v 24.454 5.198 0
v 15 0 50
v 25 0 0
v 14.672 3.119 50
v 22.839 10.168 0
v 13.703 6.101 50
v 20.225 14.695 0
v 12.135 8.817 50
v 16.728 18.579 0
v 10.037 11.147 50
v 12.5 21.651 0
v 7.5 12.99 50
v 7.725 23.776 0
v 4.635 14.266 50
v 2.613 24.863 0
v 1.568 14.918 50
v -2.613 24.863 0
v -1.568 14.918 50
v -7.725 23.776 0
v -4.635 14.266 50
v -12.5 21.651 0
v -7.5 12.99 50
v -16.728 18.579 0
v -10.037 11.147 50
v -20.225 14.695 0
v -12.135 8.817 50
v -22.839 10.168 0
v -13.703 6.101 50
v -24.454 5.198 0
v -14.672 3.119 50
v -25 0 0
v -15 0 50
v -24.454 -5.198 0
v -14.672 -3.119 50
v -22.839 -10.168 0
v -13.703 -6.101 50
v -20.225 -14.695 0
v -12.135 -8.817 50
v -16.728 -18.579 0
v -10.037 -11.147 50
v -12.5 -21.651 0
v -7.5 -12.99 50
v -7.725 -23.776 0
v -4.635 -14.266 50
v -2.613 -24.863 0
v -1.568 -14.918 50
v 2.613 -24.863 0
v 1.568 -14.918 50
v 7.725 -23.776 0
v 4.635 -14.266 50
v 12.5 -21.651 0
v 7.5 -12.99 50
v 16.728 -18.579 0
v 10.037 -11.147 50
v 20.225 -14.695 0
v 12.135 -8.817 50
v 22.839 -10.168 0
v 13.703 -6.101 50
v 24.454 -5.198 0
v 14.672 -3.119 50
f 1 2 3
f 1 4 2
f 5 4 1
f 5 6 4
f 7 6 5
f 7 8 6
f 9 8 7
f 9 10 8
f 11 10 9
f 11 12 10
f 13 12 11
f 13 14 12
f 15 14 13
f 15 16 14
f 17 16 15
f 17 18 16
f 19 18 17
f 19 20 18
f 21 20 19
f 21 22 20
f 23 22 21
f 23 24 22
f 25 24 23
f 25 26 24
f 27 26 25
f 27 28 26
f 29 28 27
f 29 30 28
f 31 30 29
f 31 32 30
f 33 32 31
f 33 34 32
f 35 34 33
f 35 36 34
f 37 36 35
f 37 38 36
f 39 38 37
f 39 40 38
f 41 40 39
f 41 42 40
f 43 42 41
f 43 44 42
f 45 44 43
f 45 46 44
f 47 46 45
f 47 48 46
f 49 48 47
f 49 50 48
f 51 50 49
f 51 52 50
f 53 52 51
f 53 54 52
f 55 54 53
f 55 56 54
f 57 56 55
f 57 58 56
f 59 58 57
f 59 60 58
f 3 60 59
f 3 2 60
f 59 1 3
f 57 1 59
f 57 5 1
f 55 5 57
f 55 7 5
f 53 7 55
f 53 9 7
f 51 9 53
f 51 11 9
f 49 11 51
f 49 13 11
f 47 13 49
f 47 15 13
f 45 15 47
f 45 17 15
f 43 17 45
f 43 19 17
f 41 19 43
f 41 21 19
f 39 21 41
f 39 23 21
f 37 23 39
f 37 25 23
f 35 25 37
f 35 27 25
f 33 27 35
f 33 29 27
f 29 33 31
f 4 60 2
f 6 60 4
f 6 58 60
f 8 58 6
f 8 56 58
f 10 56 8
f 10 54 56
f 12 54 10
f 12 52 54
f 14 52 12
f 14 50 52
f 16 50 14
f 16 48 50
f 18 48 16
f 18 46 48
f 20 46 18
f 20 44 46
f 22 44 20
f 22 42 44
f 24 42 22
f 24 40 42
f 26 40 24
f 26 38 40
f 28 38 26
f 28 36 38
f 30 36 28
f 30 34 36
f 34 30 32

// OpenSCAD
/**
 * cone1.scad
 * 
 * Cone for roller skating practice. Print it with elastic material.
 * 
 * Created by Diego Viejo
 * 23/May/2016
 * 
 */

Diam1 = 50;
Diam2 = Diam1*3/5;

Height = 50;
Wall=0.75;

Cone1();

module Cone1()
difference()
{
    cylinder(d1=Diam1, d2=Diam2, h=Height);
    
//    cylinder(d1=Diam1-2*Wall, d2=Diam2-2*Wall, h=Height);

}
